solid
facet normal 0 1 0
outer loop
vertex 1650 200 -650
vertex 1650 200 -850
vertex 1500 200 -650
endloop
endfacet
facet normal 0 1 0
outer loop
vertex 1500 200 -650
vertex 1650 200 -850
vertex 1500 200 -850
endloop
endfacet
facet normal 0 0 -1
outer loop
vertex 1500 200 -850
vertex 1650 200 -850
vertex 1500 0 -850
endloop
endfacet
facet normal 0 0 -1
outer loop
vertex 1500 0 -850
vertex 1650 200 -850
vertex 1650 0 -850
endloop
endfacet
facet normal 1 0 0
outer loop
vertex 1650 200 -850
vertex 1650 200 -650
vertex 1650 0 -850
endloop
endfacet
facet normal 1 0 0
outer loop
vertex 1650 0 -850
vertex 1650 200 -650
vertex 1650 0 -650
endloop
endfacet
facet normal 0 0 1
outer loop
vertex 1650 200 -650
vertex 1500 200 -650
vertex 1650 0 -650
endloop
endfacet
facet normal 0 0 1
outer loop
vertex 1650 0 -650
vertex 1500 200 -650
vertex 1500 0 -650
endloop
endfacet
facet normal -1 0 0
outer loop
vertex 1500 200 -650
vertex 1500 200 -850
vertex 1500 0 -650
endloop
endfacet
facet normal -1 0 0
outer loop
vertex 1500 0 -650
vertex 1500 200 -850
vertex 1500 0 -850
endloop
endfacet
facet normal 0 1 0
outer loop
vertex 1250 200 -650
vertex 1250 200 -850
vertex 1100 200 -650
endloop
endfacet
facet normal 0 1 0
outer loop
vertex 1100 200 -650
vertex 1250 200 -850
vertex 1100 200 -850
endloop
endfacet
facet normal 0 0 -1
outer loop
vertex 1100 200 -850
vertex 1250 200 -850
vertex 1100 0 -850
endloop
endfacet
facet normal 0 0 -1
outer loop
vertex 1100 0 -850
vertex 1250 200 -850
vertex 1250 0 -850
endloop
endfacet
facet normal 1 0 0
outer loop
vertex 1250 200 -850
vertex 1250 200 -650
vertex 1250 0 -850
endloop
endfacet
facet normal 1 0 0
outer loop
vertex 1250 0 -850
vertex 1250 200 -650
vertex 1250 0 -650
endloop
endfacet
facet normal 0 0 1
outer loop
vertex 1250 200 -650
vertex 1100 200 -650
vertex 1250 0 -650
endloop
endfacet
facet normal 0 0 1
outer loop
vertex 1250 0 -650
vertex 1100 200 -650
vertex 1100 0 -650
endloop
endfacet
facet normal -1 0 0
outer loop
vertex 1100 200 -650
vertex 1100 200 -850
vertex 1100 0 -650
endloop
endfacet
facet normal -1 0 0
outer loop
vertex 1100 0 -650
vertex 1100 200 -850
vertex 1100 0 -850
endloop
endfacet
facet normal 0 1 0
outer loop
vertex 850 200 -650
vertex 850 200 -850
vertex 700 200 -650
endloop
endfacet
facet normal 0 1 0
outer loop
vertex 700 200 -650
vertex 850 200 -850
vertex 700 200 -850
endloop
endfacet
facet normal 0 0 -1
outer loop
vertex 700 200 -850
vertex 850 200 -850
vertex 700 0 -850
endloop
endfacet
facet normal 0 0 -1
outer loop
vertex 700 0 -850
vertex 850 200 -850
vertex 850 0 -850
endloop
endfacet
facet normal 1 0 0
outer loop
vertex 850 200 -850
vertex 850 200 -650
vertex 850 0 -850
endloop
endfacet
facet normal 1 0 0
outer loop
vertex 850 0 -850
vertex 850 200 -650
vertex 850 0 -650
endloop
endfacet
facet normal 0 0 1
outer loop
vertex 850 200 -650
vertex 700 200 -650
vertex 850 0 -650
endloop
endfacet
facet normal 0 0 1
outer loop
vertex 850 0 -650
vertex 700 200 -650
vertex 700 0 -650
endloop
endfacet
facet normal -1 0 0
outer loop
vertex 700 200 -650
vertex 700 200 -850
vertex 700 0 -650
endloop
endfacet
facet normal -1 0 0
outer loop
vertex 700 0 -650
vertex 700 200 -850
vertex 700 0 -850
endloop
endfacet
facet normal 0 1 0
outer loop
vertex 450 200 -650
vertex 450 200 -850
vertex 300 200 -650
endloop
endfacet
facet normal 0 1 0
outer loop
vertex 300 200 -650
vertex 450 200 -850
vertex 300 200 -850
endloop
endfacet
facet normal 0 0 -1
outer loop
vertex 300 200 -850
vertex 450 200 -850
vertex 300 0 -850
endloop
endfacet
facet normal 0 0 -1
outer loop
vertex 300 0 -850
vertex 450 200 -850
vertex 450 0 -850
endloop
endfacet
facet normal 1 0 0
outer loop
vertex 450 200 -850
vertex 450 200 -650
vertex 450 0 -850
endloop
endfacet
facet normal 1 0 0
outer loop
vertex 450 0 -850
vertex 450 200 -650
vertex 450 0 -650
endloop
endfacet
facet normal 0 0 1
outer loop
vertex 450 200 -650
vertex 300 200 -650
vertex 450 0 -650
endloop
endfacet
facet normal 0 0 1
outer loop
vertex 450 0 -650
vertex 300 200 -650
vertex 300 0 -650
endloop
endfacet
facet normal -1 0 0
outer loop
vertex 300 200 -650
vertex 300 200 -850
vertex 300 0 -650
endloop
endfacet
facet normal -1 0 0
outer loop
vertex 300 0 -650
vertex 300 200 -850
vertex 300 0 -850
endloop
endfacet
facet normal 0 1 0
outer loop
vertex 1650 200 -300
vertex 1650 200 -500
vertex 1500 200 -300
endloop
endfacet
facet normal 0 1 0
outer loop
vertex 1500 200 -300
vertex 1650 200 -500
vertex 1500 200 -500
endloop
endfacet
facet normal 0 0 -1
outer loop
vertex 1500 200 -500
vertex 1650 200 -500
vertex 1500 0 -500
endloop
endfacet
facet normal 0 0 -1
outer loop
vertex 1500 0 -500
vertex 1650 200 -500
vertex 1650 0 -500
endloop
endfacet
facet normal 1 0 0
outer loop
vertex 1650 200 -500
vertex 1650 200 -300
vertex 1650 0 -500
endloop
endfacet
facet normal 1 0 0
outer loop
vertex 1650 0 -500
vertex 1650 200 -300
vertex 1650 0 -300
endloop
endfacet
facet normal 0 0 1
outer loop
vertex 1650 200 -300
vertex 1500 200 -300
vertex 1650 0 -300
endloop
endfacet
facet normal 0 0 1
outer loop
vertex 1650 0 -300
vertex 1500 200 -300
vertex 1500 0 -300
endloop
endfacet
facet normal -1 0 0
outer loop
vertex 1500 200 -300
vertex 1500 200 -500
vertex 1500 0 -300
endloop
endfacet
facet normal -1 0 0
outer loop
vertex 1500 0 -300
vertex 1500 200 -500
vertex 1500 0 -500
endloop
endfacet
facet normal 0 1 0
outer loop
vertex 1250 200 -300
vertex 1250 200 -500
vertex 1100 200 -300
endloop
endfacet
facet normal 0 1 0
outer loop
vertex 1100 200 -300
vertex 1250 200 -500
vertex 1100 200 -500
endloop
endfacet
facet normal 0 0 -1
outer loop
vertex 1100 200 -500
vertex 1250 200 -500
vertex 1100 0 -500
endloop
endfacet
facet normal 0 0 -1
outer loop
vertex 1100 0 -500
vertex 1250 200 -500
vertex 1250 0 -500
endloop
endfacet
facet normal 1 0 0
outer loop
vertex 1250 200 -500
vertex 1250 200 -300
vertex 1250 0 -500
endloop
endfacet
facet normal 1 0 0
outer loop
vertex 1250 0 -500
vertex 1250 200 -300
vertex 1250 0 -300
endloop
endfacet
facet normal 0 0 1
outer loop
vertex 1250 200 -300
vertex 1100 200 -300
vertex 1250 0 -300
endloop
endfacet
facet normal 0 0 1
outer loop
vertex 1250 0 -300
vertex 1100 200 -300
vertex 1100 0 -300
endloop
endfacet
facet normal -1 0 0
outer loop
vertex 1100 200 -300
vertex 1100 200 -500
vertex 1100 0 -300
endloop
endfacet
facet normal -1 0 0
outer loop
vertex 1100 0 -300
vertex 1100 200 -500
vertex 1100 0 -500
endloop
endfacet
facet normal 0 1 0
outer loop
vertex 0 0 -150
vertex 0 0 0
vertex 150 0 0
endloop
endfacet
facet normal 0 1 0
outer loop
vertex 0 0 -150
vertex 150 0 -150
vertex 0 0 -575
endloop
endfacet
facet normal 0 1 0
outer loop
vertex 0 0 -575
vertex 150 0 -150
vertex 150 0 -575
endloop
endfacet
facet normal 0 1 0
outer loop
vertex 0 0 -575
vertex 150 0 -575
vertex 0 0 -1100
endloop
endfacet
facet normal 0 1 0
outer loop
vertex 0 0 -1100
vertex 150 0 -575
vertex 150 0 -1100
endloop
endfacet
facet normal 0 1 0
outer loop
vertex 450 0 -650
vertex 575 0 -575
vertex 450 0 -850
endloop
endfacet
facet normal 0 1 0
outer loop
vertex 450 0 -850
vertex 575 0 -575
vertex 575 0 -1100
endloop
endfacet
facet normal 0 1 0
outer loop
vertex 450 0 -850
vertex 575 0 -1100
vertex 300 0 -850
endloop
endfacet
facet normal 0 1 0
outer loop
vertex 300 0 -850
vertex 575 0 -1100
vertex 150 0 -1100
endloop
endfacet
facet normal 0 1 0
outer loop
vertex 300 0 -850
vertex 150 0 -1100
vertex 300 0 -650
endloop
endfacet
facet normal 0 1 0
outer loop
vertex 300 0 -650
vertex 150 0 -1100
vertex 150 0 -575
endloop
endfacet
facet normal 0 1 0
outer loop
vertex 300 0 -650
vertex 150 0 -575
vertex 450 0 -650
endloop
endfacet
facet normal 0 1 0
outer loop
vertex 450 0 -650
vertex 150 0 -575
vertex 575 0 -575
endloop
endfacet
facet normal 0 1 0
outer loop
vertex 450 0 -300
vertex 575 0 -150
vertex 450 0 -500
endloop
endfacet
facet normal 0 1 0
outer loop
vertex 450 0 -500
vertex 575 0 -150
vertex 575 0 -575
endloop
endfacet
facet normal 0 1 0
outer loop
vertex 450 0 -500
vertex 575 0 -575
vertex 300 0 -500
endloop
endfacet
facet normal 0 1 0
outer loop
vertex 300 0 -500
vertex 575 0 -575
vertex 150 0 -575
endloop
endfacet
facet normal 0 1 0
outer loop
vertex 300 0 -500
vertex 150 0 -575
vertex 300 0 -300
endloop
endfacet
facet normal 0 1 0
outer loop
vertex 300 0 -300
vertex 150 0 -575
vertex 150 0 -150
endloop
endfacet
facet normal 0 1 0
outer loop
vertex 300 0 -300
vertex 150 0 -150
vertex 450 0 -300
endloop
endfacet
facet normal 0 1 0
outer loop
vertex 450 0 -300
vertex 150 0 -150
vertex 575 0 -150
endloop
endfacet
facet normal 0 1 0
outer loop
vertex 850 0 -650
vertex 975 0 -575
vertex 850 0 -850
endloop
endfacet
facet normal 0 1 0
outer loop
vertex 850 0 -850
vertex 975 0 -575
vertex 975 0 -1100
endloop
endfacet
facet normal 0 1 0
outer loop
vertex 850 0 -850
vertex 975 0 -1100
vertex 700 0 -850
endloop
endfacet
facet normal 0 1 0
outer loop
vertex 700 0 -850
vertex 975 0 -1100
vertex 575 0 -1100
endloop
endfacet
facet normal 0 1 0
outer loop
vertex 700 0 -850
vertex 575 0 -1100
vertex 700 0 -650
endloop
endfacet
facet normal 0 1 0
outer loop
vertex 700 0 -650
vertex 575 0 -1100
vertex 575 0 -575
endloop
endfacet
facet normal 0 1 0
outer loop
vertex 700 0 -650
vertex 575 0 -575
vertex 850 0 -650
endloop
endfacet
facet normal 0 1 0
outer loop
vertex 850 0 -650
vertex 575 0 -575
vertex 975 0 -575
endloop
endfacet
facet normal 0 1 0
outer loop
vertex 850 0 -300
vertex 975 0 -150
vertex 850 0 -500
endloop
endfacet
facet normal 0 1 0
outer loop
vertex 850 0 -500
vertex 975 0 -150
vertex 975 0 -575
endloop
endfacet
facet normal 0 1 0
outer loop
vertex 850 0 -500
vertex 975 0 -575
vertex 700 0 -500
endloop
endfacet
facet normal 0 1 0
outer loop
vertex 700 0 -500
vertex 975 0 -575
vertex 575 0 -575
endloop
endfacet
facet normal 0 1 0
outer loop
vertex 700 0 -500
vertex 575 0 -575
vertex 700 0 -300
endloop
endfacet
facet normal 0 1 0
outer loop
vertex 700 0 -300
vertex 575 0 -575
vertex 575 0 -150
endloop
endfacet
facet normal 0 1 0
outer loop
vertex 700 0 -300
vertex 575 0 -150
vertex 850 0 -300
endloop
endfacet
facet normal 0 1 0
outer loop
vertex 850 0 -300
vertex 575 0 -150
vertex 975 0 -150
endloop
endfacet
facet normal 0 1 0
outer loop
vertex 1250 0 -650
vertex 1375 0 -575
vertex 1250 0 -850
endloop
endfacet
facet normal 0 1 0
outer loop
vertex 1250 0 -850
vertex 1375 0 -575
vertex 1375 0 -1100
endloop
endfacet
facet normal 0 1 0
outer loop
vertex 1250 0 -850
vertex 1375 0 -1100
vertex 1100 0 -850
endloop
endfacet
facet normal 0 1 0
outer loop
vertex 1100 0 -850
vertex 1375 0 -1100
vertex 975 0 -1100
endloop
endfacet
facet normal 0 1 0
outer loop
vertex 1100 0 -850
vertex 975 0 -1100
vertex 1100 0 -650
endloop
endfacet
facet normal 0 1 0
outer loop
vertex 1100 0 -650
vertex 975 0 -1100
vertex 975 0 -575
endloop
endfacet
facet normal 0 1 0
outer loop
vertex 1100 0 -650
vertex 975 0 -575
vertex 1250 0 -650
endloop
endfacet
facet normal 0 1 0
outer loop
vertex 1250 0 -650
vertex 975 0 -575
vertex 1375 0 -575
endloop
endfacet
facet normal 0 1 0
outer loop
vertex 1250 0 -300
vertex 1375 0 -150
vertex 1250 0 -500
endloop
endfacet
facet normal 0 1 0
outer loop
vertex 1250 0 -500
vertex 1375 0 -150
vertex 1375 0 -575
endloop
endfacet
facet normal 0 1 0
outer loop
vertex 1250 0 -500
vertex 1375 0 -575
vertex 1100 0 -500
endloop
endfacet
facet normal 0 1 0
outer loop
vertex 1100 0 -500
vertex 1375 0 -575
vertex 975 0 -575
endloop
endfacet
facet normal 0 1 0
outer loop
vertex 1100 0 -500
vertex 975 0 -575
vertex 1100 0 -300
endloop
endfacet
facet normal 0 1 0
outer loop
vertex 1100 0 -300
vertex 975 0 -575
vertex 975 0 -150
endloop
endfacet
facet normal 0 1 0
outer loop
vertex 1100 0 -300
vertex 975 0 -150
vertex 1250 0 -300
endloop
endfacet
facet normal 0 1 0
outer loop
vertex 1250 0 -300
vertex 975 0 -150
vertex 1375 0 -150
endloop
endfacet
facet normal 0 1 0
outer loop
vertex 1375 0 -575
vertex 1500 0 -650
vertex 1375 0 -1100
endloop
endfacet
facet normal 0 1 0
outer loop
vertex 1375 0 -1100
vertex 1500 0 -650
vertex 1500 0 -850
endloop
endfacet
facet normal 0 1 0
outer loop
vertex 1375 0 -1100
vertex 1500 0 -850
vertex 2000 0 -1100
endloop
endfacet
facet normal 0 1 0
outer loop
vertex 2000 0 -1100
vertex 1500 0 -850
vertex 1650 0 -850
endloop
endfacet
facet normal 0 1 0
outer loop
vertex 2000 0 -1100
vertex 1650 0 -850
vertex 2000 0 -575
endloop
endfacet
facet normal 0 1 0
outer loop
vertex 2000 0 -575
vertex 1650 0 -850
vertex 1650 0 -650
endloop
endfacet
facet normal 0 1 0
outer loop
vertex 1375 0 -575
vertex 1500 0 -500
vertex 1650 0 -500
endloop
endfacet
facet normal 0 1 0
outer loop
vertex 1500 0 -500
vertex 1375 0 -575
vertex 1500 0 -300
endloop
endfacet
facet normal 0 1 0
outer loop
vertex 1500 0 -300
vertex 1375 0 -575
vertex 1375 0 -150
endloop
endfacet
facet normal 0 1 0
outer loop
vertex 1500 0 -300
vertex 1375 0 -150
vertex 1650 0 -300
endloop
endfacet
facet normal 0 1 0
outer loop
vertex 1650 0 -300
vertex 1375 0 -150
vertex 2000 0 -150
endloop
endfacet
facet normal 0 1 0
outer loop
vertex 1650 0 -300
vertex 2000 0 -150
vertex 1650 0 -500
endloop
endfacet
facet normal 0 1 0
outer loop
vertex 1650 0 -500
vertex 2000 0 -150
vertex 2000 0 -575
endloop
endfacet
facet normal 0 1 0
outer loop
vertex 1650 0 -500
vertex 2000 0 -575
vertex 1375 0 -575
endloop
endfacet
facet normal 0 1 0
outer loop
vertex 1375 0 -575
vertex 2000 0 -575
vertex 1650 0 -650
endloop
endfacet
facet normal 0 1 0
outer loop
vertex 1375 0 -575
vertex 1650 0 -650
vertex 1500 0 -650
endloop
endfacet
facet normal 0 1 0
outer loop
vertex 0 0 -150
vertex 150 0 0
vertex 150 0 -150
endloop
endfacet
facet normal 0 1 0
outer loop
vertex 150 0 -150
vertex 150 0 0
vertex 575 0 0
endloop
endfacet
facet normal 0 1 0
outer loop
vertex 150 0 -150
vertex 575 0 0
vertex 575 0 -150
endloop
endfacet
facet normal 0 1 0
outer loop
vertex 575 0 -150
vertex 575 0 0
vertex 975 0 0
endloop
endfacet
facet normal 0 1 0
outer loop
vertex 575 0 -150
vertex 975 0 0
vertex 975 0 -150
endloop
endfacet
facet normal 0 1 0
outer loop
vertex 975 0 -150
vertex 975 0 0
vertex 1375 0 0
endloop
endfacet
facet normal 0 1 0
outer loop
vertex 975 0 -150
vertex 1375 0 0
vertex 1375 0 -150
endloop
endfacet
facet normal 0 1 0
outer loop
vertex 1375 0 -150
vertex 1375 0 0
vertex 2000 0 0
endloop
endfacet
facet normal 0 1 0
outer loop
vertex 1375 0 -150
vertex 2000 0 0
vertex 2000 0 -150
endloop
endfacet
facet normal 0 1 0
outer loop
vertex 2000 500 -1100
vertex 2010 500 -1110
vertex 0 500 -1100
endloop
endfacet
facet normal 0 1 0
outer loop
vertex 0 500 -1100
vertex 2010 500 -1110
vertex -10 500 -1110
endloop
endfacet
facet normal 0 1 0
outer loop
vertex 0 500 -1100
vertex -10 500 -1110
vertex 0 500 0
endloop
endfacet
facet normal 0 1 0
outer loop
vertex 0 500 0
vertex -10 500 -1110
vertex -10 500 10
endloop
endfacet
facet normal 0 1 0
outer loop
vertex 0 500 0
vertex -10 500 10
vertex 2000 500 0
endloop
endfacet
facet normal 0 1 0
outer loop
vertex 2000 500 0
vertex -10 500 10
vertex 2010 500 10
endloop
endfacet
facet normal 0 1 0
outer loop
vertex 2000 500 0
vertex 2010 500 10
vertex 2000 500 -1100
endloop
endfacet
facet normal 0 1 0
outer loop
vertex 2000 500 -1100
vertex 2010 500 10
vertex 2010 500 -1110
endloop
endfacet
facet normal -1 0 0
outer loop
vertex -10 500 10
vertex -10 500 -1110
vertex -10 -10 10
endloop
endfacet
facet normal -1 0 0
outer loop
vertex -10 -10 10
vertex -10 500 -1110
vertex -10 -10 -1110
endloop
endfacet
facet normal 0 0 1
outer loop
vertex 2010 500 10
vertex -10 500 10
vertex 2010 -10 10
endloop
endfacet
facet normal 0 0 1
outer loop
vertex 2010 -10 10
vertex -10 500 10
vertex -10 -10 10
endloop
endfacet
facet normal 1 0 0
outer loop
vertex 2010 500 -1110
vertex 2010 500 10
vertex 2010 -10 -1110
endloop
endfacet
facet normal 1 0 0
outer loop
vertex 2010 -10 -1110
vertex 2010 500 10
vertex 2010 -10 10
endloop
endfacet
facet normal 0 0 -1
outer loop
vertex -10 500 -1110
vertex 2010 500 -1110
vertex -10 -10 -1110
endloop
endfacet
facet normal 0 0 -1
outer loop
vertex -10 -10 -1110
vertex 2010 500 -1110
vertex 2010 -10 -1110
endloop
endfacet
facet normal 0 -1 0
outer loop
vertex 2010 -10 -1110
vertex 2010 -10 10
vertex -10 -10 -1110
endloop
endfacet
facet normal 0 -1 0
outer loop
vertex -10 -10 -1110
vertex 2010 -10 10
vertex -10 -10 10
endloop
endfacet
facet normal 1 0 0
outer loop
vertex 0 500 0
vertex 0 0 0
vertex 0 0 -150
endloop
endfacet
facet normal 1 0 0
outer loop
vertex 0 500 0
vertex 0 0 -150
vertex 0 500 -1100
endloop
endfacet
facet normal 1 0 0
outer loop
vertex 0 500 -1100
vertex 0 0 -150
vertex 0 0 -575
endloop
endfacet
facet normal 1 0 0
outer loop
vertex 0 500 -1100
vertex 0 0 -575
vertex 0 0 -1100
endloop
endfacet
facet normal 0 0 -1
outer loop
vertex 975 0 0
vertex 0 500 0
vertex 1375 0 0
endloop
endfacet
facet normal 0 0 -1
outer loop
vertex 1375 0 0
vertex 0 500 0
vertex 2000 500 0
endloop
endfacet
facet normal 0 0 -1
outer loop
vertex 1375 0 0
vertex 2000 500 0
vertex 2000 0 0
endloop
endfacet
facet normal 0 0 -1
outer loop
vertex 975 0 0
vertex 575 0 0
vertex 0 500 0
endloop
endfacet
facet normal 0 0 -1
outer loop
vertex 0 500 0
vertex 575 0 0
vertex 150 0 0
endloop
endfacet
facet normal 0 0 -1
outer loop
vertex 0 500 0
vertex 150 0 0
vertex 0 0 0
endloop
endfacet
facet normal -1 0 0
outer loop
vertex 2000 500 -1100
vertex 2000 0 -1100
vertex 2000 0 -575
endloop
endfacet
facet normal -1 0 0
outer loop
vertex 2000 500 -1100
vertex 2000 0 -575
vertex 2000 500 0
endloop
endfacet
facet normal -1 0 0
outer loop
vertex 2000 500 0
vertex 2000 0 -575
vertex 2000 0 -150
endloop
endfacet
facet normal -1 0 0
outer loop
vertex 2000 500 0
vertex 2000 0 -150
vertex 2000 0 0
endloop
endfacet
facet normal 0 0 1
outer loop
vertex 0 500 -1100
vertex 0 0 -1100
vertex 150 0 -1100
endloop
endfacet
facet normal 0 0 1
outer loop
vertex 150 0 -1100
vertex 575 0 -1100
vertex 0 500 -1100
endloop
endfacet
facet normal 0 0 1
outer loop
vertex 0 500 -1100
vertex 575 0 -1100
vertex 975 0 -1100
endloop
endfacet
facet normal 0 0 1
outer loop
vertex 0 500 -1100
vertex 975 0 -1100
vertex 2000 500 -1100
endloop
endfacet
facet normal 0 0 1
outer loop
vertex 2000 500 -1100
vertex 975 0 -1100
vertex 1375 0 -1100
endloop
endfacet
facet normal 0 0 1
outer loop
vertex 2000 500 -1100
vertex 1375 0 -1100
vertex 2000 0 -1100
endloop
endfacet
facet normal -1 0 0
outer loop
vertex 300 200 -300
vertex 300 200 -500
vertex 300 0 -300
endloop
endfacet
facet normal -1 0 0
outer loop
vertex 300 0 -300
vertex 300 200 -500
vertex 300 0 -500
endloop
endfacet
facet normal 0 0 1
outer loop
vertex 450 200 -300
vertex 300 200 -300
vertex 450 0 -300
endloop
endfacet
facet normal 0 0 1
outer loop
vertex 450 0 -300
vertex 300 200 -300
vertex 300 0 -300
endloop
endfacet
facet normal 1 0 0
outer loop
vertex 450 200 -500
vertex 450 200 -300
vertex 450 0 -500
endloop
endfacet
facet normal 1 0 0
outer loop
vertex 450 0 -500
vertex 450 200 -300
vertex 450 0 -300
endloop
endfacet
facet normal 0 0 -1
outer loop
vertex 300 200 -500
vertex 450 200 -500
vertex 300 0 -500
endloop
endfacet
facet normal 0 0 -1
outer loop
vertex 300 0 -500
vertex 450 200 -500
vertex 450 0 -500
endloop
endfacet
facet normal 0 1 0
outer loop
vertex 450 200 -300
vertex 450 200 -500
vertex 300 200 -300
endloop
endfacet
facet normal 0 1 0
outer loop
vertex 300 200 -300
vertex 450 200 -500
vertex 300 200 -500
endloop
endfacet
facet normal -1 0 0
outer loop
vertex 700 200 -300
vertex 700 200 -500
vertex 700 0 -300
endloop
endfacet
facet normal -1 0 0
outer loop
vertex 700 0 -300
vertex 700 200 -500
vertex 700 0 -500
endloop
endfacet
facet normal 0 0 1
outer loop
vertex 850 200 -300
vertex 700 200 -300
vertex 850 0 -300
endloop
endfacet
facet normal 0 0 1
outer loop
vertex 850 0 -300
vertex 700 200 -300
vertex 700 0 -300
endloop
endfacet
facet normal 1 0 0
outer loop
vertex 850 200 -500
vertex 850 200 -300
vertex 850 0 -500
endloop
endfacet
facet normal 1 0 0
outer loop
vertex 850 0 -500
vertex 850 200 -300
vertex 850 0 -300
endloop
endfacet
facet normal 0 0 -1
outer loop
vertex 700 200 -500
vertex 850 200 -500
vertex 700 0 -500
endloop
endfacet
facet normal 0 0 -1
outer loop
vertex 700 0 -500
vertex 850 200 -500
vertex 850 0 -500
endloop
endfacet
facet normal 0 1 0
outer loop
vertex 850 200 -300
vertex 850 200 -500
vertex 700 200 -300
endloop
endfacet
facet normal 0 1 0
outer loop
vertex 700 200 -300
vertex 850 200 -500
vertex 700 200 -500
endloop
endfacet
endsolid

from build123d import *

# Parameters (mm, degrees)
SKETCH1_W            = 2000
SKETCH1_H            = 1100
BOSS_EXTRUDE1_DEPTH  = 500
SHELL1_T             = 10
SKETCH2_W            = 150
SKETCH2_H            = 200
BOSS_EXTRUDE2_DEPTH  = 200
LPATTERN1_COUNT      = 4
LPATTERN1_PITCH      = 400
LPATTERN1_COUNT_DIR2 = 2
LPATTERN1_PITCH_DIR2 = 350


with BuildPart() as part:
    # Sketch1 → Boss-Extrude1 (new body)
    with BuildSketch(Plane(origin=(0, 0, 0), x_dir=(1, 0, 0), z_dir=(0, 1, 0))):
        with Locations((1000, 550)):
            Rectangle(SKETCH1_W, SKETCH1_H)
    extrude(amount=BOSS_EXTRUDE1_DEPTH)

    # Shell1
    shell1_openings = [part.faces().sort_by_distance(p)[0] for p in [
        (1000, 500, -550),
    ]]
    offset(amount=SHELL1_T, openings=shell1_openings, kind=Kind.INTERSECTION)

    # Sketch2 → Boss-Extrude2 (add)
    with BuildSketch(Plane(origin=(0, 0, 0), x_dir=(1, 0, 0), z_dir=(0, 1, 0))):
        with Locations((375, 400)):
            Rectangle(SKETCH2_W, SKETCH2_H)
    boss_extrude2 = extrude(amount=BOSS_EXTRUDE2_DEPTH)

    # LPattern1: Boss-Extrude2 4 × 2
    with Locations(*[(i * LPATTERN1_PITCH, 0, -j * LPATTERN1_PITCH_DIR2) for i in range(LPATTERN1_COUNT) for j in range(LPATTERN1_COUNT_DIR2) if (i, j) != (0, 0)]):
        add(boss_extrude2)


solid = part.part
